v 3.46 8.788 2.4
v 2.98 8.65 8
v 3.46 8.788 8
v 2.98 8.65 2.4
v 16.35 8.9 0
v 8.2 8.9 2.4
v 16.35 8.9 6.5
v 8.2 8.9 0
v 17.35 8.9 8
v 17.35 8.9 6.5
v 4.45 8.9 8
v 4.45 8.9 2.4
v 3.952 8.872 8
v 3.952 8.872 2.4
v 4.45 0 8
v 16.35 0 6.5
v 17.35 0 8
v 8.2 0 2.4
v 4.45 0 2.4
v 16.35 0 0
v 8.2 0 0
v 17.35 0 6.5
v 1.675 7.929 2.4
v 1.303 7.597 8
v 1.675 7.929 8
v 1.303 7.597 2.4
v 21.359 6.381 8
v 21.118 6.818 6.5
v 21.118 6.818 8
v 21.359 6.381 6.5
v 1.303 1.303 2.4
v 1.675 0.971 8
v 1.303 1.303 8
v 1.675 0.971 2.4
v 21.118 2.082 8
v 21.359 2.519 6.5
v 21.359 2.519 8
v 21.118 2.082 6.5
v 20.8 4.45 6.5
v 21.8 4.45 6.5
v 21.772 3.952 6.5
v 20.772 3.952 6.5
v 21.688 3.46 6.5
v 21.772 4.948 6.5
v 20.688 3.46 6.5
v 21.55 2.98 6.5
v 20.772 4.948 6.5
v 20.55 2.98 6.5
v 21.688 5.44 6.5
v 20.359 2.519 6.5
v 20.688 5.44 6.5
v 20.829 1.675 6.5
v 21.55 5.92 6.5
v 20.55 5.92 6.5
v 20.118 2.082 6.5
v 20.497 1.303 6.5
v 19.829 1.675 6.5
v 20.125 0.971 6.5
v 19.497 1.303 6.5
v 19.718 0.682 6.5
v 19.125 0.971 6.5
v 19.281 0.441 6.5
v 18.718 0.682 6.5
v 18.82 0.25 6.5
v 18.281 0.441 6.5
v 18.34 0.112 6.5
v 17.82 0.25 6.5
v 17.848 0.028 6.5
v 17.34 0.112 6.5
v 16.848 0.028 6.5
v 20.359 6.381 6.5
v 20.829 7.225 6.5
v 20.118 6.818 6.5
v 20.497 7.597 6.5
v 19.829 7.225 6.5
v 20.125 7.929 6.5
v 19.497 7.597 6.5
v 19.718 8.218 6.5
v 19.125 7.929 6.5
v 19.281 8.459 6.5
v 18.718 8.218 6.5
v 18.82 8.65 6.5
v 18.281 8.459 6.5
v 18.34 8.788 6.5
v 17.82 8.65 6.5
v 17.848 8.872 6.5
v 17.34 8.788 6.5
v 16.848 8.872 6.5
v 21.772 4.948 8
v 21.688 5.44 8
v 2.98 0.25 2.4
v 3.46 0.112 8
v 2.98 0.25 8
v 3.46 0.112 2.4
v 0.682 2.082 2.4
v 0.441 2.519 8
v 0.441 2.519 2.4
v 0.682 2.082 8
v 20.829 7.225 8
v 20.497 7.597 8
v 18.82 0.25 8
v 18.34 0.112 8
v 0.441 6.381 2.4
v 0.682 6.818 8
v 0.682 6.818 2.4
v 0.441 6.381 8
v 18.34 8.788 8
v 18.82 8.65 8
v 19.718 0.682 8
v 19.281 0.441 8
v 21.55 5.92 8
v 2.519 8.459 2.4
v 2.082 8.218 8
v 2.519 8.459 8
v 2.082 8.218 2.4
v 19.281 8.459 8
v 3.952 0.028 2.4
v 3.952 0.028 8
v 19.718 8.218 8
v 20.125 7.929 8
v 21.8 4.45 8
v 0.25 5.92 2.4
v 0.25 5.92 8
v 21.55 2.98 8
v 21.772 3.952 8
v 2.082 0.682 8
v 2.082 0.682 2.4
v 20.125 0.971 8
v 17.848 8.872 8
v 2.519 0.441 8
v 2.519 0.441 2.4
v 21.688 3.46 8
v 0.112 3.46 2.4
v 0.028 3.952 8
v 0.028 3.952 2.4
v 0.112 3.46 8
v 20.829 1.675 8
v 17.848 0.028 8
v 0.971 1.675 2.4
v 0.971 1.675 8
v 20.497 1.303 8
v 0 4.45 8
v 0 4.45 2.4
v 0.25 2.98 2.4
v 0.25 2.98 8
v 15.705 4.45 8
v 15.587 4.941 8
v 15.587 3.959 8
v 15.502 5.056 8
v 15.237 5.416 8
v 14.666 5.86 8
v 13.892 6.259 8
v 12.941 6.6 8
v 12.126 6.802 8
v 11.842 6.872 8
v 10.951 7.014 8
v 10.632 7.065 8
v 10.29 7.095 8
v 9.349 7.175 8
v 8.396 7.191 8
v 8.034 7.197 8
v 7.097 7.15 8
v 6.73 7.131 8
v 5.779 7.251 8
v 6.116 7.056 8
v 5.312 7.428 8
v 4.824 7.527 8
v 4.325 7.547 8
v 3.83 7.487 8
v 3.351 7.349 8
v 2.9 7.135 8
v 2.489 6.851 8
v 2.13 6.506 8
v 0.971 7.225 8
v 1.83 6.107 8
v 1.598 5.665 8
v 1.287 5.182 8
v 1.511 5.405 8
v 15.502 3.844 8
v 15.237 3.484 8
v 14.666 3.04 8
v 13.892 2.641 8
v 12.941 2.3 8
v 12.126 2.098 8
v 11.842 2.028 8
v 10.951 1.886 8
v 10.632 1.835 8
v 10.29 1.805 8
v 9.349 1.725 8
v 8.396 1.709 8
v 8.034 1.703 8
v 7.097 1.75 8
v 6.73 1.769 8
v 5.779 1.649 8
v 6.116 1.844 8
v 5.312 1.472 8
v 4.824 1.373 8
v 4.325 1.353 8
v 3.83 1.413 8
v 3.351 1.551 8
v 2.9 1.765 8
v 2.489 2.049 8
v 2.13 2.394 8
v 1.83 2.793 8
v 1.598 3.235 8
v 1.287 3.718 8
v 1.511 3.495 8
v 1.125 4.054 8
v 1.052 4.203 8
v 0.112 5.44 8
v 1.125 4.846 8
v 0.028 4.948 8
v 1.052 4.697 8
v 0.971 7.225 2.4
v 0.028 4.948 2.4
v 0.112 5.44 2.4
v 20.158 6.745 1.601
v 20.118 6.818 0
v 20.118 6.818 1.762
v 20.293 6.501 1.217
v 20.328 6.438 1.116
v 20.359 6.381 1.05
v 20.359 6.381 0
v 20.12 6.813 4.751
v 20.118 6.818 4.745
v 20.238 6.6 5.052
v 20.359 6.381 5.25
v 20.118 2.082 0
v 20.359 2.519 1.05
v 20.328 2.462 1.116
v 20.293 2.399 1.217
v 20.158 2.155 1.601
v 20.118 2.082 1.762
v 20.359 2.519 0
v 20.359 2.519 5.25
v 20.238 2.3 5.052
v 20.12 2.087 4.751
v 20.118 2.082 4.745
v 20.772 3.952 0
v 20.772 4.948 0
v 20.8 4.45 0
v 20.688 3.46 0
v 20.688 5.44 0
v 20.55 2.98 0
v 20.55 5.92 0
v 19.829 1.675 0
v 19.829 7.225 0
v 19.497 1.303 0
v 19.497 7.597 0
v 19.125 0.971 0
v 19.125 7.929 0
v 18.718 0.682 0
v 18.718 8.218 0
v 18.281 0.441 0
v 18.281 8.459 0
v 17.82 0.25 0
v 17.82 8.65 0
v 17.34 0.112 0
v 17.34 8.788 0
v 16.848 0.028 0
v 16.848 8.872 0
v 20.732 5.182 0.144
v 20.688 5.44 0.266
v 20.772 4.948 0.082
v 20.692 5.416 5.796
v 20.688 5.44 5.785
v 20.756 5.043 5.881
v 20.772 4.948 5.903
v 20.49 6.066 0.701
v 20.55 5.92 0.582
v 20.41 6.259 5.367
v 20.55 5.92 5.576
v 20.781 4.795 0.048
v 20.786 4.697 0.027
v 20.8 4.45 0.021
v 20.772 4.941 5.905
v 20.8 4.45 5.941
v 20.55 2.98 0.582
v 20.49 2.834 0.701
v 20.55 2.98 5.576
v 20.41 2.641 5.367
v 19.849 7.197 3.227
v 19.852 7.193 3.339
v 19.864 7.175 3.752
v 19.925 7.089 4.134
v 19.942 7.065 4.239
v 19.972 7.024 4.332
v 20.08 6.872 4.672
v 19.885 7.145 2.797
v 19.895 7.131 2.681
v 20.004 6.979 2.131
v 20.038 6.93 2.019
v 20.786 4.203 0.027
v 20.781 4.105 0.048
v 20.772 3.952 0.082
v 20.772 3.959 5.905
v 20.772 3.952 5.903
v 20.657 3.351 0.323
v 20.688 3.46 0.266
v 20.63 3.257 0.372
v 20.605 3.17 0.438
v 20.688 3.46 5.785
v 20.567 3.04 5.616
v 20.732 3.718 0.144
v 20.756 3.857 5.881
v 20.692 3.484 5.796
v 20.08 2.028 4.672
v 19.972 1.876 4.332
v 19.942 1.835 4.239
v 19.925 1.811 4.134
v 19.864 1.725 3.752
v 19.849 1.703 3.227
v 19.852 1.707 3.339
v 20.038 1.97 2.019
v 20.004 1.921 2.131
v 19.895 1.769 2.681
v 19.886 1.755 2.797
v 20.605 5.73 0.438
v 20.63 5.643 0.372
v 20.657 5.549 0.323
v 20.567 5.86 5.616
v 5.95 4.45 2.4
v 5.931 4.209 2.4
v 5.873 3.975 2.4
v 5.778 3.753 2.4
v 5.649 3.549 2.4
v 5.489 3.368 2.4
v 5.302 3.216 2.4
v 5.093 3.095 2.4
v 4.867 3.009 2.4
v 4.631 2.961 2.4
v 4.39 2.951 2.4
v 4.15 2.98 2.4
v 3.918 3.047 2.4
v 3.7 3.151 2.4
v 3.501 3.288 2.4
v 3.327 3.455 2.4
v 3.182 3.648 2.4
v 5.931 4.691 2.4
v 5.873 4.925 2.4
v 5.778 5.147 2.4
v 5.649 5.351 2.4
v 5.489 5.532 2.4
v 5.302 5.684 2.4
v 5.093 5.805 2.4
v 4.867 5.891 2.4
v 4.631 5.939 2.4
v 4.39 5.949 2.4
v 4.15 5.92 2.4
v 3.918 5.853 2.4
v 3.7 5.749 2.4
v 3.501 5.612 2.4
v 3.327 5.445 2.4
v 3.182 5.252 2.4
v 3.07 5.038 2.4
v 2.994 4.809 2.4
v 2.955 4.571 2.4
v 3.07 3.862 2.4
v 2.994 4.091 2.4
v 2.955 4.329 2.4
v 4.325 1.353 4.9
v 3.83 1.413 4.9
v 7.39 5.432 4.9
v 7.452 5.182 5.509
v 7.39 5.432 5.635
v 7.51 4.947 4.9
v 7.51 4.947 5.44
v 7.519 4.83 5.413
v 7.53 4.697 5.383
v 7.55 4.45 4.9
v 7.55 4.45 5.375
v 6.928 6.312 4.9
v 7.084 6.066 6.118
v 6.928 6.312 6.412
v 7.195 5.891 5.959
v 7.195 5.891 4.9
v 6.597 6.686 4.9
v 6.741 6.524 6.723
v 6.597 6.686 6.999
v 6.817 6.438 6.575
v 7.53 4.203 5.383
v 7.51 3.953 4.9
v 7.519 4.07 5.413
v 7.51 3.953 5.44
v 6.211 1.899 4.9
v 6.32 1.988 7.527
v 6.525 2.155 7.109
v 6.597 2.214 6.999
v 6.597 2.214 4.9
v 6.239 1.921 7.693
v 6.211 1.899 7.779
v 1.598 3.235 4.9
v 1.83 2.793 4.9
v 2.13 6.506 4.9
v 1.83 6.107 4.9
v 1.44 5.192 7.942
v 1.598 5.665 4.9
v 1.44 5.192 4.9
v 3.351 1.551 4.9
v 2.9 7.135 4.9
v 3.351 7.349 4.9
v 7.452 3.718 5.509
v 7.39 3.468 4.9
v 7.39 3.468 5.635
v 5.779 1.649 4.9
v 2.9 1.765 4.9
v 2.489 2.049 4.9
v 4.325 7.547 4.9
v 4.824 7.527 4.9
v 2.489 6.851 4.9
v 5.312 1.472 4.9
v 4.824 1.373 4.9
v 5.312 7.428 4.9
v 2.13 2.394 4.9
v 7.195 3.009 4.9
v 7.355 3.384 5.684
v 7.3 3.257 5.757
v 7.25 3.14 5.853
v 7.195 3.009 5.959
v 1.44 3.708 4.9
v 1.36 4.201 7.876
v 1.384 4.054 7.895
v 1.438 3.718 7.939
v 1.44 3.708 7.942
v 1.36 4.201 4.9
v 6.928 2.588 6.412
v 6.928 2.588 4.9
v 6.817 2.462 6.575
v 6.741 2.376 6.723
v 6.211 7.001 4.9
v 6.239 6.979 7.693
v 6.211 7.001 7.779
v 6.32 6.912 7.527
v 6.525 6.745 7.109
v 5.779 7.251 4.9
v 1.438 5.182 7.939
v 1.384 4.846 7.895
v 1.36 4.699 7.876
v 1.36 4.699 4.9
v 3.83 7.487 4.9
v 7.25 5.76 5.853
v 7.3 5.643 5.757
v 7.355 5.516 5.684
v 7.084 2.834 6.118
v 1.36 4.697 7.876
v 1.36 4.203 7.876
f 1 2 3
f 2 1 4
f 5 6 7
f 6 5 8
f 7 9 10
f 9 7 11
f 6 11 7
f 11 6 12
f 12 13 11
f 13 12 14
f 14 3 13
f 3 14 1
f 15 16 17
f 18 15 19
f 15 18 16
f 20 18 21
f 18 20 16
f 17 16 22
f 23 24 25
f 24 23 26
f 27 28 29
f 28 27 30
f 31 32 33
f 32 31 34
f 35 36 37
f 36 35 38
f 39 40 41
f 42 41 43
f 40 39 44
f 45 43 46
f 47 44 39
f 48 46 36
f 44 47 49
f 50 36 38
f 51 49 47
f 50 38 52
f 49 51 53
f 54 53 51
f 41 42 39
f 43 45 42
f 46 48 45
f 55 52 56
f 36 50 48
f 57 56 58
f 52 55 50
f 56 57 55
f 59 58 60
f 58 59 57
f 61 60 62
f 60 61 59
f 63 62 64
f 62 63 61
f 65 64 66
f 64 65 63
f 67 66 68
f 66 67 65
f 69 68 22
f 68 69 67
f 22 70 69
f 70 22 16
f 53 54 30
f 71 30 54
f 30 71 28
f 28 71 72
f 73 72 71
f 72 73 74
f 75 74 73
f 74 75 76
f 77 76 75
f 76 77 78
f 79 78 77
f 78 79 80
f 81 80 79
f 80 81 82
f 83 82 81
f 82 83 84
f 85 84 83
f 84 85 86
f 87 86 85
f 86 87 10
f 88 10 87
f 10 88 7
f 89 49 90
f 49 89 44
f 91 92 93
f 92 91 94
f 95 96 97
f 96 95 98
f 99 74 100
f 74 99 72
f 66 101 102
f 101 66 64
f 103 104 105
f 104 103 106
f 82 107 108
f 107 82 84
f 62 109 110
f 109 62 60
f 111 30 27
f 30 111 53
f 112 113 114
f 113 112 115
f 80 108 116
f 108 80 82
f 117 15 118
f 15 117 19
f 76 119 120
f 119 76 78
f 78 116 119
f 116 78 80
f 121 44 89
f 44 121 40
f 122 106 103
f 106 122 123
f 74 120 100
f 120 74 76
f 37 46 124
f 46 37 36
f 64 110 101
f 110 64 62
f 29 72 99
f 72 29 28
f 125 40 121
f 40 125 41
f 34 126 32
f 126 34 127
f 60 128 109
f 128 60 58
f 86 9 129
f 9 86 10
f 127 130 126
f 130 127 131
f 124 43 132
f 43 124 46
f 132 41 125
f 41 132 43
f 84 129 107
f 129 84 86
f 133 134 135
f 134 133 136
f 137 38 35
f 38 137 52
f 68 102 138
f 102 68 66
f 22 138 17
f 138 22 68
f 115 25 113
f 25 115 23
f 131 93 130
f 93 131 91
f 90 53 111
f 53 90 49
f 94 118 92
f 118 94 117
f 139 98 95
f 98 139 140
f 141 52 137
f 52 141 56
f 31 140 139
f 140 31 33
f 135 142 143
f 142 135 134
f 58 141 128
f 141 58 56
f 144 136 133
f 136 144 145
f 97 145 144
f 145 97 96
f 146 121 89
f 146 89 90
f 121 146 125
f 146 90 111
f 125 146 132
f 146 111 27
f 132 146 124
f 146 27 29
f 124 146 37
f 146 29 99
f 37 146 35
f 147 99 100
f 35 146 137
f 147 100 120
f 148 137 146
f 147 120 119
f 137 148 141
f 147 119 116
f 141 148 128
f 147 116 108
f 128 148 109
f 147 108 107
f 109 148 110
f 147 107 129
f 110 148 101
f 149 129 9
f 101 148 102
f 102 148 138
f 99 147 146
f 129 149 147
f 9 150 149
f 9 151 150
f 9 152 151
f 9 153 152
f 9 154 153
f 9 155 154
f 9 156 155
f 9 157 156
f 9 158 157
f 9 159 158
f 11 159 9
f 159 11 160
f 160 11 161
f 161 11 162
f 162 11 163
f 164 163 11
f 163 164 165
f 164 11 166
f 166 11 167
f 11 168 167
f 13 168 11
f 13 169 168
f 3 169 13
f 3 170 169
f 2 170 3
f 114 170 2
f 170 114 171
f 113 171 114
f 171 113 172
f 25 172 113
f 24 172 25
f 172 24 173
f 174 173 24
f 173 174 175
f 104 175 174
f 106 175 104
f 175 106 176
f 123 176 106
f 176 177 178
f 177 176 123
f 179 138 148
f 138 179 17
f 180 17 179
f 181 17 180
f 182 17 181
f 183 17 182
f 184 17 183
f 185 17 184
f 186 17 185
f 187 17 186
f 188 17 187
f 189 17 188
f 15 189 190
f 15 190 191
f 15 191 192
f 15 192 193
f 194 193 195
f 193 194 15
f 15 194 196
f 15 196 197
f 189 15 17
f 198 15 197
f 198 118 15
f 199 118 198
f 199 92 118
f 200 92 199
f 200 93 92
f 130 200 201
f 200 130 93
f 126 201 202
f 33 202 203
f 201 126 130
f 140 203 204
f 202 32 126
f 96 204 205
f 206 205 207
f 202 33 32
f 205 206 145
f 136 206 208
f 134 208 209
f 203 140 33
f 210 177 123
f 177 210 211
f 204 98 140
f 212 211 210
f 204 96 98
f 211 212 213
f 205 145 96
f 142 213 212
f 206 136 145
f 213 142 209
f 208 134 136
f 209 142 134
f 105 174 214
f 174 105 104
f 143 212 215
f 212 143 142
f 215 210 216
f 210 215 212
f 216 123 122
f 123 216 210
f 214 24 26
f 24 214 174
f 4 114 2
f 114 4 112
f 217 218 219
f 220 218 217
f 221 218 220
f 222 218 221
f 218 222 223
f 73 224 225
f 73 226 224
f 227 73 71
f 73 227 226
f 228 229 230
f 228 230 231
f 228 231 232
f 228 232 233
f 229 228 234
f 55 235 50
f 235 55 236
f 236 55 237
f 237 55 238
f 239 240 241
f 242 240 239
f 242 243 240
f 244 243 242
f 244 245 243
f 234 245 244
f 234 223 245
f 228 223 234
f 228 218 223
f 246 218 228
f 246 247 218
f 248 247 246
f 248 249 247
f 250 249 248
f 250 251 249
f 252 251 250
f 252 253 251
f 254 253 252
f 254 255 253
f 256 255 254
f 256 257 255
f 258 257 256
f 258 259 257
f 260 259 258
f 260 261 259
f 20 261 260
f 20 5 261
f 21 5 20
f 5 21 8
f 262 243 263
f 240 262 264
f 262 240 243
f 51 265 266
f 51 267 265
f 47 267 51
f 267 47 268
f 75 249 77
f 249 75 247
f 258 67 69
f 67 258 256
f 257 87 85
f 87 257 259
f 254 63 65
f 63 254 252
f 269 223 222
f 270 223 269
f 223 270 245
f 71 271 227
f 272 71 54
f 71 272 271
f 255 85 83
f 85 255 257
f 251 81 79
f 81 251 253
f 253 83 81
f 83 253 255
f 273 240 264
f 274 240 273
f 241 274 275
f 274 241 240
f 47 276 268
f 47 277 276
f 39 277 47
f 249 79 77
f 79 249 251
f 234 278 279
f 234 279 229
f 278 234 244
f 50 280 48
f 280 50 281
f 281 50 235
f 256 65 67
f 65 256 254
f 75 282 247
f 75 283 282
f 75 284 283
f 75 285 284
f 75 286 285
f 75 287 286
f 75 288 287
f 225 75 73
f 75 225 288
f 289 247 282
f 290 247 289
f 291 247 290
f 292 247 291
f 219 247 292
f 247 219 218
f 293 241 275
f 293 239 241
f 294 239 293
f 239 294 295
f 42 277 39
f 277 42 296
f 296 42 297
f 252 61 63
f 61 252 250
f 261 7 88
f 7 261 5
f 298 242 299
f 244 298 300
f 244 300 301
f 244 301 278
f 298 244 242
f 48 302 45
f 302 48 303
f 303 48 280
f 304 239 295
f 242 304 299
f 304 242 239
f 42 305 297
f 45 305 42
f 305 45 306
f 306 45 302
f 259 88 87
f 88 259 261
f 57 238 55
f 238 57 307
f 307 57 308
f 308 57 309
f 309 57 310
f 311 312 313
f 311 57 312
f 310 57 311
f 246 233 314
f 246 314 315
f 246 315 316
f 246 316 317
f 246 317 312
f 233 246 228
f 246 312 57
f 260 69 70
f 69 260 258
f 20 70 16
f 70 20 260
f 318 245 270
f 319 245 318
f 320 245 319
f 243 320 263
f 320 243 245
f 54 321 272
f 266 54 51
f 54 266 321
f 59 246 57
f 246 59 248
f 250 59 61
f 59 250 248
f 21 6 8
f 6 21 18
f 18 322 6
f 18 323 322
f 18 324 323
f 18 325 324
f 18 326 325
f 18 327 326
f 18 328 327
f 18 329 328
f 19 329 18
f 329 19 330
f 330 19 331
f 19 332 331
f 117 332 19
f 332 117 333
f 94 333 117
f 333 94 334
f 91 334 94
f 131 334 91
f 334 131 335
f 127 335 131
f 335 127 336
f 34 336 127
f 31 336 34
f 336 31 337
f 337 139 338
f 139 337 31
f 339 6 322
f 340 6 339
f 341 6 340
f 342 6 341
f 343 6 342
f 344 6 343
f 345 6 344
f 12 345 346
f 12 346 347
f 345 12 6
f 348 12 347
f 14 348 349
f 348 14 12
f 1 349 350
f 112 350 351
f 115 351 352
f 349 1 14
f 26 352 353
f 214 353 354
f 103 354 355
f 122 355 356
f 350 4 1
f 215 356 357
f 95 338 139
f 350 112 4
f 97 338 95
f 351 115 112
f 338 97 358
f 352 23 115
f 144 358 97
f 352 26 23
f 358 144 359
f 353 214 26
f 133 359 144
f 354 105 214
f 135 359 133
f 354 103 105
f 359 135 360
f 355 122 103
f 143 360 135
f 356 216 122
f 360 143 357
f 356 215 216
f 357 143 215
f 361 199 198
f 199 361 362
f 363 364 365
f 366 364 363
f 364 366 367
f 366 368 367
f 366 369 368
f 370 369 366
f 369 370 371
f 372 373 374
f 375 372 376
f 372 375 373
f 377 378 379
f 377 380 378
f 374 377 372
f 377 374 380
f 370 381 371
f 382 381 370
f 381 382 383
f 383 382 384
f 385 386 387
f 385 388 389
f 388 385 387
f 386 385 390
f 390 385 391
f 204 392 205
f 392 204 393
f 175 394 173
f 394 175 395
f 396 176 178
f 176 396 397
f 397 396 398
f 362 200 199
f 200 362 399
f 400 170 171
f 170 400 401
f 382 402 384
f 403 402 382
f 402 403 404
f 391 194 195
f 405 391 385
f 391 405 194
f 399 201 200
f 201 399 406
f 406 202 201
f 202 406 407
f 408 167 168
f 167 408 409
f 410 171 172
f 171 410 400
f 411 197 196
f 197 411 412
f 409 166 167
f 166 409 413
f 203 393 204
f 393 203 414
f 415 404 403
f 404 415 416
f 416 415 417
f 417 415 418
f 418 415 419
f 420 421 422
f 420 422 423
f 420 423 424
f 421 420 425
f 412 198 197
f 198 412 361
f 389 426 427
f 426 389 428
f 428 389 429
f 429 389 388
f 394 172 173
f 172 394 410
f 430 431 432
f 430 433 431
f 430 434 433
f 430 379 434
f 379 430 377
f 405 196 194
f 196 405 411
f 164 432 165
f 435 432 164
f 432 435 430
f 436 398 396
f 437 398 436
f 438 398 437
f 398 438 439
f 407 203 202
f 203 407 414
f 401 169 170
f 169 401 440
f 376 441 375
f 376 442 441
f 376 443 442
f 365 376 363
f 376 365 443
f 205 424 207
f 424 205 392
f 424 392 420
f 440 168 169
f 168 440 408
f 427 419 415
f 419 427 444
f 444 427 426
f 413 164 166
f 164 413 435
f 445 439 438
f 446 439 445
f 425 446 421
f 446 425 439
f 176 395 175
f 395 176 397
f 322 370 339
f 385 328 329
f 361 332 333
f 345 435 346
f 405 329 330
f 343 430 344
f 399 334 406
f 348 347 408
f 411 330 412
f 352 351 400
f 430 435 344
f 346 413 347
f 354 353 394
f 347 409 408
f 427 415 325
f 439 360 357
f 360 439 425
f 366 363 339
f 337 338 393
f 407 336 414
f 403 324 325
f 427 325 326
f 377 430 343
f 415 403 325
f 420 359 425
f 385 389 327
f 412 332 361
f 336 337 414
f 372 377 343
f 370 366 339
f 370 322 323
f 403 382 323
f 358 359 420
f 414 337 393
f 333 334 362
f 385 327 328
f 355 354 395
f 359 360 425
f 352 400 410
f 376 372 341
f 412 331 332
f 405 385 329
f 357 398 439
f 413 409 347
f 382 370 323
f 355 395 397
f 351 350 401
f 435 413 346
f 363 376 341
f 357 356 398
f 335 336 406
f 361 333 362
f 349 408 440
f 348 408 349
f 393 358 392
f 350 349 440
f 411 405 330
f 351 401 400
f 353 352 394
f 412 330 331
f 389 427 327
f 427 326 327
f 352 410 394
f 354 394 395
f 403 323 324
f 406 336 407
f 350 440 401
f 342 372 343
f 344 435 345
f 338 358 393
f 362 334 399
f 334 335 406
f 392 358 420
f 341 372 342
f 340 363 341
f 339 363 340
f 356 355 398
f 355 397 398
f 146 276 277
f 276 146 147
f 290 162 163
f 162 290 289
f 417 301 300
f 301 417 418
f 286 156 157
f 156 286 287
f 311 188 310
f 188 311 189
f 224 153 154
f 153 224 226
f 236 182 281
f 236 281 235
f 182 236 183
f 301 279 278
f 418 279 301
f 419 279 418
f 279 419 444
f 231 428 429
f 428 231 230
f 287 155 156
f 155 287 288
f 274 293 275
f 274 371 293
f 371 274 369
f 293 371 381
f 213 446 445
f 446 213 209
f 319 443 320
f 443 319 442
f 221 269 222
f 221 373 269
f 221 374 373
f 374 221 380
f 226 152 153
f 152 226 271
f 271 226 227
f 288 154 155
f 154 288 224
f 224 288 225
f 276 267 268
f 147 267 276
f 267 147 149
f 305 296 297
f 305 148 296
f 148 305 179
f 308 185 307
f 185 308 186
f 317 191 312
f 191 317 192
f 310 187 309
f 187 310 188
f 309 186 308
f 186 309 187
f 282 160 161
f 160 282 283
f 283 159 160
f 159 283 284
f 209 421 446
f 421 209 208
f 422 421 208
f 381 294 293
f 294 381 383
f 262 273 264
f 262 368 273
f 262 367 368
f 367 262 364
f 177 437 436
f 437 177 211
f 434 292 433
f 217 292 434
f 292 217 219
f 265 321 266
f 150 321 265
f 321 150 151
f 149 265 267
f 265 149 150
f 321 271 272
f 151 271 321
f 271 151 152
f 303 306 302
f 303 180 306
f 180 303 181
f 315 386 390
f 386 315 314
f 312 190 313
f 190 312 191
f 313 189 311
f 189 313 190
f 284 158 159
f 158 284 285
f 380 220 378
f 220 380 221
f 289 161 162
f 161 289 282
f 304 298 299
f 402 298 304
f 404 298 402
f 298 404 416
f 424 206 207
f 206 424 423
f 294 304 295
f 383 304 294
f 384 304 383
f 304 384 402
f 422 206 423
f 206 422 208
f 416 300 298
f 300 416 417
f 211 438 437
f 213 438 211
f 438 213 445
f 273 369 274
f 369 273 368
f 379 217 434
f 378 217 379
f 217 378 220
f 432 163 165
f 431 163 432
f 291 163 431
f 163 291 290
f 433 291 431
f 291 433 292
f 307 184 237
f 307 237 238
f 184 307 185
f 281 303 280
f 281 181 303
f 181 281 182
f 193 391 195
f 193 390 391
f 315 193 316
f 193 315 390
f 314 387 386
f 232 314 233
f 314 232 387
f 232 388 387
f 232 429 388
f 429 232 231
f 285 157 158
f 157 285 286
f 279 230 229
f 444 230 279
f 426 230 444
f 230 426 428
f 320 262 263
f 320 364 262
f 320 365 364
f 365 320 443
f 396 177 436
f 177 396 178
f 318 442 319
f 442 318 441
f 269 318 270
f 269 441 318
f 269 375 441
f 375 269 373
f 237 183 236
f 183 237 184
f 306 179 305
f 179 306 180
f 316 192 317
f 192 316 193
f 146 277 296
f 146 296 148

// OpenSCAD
module fp_008(housing) {
	$fa = 1;
	$fs = 0.5;

	difference() {
		union() {
			translate([0,0,8-1.5]) linear_extrude(height=1.5) {	
				translate([4.45,0,0]) square([21.8-8.9,8.9]);
				translate([4.45,4.45,0]) circle(d=8.9);
				translate([21.8-4.45,4.45,0]) circle(d=8.9);
			}
	
			linear_extrude(height=8) {	
				translate([4.45,0,0]) square([21.8-8.9-1,8.9]);
				translate([4.45,4.45,0]) circle(d=8.9);
				translate([21.8-4.45-1,4.45,0]) circle(d=8.9);
			}
		}
	
		cube([8.2, 8.9, 2.4]);
	
		translate([4.45,4.45,1.5+3.4]) cylinder(d=6.2, h=10);
		translate([4.45,4.45,2.4]) cylinder(d1=3, d2=6.2, h=2.5);
	
	
		translate([6.6,0,-10])	rotate([0,-68,0]) translate([21.8-4.45,4.45,-50]) cylinder(d=housing, h=200);
	}
}

fp_008(5.5);
